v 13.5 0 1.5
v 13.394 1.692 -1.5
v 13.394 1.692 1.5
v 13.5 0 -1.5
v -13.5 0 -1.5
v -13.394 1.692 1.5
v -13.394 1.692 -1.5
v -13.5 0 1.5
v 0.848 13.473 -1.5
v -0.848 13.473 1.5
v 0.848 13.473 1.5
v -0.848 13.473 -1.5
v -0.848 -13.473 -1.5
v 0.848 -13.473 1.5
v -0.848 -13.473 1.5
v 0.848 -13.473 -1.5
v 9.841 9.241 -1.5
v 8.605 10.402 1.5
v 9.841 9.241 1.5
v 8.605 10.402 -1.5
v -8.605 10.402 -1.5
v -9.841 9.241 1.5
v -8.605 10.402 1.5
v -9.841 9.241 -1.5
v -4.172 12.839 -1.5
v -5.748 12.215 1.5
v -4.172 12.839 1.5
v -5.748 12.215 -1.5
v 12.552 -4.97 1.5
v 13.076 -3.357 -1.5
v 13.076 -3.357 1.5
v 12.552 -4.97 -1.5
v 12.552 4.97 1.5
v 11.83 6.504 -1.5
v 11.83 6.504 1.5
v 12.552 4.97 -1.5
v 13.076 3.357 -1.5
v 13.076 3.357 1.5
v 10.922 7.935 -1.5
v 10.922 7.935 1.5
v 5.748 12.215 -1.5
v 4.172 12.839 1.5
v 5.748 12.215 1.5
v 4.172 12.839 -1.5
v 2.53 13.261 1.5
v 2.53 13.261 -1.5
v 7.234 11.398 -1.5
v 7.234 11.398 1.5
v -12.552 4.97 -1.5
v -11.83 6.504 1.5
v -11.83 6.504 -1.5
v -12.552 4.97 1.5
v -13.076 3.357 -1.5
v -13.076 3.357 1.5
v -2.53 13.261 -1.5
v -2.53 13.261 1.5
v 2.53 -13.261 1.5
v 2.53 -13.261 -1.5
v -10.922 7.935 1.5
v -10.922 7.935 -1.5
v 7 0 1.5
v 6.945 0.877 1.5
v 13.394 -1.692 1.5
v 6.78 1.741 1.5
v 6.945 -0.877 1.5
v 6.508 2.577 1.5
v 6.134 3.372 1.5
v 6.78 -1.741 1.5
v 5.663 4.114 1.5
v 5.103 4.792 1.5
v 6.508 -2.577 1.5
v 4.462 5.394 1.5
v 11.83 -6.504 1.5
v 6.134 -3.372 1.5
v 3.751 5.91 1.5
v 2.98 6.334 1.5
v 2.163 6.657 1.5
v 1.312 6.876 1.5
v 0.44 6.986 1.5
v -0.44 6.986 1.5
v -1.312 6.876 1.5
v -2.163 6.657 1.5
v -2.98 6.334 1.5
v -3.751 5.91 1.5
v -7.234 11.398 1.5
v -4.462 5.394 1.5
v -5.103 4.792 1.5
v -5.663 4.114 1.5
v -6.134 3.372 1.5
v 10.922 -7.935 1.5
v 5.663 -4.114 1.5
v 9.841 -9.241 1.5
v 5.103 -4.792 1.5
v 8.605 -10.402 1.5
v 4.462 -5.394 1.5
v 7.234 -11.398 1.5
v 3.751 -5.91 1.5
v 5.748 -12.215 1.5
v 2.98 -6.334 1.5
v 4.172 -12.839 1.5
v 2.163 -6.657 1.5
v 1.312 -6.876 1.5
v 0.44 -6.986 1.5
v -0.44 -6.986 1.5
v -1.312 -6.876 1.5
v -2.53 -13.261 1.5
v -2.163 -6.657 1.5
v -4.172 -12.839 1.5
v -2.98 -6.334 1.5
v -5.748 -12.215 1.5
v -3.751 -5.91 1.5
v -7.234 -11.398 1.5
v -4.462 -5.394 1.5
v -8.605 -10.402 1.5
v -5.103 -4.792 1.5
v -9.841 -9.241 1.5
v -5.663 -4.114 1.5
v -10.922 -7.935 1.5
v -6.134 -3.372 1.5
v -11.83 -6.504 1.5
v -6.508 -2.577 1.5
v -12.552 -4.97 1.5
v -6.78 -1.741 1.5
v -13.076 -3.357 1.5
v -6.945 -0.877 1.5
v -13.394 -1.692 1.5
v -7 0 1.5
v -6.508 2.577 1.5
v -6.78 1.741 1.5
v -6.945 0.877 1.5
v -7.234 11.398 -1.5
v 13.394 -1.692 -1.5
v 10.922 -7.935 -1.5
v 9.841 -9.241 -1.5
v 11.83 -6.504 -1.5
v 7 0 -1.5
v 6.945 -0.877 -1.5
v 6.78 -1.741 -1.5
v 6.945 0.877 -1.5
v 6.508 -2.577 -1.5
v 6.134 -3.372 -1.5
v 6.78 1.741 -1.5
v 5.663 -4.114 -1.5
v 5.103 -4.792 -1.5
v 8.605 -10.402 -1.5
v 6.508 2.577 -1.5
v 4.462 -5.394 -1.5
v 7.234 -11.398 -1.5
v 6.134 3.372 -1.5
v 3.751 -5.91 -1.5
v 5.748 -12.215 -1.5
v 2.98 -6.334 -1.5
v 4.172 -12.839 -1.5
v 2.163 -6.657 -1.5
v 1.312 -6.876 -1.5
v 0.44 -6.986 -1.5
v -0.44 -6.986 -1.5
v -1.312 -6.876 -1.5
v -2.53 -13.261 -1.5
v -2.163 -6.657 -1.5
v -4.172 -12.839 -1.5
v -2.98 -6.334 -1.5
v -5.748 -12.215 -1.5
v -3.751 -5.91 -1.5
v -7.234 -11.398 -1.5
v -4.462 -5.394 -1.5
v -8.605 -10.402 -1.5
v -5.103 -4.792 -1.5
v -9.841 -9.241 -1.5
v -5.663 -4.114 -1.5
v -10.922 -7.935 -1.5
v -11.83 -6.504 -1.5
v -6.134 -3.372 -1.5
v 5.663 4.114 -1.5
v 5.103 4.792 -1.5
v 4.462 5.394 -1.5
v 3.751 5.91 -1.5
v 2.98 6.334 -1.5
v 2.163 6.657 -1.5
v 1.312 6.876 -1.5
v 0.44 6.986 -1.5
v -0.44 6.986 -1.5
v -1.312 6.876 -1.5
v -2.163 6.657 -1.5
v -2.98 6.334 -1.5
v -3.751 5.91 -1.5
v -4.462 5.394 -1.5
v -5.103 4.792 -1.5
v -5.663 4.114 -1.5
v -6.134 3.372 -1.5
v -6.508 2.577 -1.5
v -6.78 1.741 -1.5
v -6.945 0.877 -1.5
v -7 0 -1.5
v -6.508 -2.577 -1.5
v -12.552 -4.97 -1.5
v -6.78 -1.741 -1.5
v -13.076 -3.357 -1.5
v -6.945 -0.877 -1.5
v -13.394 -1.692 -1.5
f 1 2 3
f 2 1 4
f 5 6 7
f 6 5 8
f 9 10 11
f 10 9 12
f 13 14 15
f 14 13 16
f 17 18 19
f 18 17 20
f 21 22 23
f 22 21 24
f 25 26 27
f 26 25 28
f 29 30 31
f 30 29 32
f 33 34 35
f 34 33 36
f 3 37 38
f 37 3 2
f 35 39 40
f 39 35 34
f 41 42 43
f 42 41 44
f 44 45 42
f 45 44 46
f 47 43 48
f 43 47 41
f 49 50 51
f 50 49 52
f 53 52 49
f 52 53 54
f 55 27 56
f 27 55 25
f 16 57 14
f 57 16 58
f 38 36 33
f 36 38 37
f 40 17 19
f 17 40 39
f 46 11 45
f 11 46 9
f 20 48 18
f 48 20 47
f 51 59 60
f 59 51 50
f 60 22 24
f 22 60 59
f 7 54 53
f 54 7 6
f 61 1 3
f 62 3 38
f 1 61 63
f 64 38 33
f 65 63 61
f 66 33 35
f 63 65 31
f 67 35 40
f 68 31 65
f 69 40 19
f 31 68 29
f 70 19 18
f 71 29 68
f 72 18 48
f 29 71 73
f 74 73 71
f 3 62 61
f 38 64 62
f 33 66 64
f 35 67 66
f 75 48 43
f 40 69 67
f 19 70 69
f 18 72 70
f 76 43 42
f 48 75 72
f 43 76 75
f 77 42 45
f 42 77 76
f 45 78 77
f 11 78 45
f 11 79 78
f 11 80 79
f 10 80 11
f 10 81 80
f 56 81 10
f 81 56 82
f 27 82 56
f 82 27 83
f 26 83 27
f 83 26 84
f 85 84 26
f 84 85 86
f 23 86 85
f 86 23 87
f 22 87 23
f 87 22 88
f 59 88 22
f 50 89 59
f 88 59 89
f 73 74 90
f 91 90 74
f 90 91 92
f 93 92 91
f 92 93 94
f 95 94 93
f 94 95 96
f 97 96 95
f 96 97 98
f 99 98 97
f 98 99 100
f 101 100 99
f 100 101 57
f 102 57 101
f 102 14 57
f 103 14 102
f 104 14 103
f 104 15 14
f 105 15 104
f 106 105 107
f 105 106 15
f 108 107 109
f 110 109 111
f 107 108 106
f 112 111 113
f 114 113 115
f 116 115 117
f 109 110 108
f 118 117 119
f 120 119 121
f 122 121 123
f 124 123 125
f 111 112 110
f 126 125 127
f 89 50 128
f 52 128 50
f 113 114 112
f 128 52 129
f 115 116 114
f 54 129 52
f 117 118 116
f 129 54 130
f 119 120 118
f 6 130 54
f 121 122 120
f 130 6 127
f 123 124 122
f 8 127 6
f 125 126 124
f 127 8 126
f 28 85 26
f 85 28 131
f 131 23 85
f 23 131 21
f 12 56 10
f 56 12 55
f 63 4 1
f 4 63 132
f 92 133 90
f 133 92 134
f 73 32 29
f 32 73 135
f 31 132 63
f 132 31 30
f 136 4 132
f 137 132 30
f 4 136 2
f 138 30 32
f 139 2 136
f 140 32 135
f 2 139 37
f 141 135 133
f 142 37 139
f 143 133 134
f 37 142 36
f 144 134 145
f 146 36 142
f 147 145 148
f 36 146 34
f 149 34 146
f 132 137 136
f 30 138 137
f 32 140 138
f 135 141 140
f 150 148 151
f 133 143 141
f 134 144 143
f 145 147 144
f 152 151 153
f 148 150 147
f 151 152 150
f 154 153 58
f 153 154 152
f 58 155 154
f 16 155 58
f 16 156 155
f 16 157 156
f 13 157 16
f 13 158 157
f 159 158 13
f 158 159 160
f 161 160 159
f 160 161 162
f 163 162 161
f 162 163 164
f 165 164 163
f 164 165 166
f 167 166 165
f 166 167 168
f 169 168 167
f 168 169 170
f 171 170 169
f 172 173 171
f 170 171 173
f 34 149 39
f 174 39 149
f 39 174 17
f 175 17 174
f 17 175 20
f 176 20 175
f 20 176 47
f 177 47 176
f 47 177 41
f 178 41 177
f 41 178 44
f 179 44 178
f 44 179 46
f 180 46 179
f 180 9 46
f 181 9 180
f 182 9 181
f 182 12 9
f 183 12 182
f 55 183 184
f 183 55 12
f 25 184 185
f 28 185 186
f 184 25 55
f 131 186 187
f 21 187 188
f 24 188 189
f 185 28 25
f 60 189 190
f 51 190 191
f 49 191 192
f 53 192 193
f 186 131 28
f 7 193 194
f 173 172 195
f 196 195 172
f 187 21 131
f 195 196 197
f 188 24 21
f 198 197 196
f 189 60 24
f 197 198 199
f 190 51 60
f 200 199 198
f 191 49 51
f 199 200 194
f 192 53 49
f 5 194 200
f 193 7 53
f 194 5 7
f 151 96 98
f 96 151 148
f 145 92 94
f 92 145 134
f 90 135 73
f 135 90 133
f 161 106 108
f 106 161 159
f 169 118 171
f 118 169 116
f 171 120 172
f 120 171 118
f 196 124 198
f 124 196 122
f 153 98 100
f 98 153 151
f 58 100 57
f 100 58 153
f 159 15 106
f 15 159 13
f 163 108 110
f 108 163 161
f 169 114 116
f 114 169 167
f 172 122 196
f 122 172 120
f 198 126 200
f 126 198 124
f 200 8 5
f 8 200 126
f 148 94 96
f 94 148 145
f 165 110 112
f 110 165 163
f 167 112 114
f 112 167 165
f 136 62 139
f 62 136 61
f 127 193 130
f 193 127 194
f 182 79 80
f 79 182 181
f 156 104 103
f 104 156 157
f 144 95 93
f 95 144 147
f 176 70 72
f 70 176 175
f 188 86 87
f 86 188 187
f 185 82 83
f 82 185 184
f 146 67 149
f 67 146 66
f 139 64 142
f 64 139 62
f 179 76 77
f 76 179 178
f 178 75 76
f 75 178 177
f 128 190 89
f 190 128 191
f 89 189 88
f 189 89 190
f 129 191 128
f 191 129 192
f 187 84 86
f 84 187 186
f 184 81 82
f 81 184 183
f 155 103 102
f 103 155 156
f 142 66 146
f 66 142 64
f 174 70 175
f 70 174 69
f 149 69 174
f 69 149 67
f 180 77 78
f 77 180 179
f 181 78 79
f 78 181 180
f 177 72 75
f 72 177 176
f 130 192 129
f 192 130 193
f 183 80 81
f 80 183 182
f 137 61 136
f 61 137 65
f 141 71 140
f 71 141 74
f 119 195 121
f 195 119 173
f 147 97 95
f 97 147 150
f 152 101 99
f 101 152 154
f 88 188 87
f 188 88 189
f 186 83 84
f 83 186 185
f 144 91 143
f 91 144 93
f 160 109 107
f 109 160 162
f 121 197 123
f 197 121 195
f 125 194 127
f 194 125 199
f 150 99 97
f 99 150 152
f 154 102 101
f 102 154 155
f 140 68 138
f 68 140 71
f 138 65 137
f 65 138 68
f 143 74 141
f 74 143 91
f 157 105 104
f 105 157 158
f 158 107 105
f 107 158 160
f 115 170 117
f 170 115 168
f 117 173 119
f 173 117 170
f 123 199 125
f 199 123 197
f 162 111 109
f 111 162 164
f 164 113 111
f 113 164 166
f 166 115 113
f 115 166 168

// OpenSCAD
$fn = 50;


difference() {
	union() {
		translate(v = [0, 0, -1.5000000000]) {
			cylinder(h = 3, r = 13.5000000000);
		}
	}
	union() {
		translate(v = [0, 0, -100.0000000000]) {
			cylinder(h = 200, r = 7);
		}
	}
}
